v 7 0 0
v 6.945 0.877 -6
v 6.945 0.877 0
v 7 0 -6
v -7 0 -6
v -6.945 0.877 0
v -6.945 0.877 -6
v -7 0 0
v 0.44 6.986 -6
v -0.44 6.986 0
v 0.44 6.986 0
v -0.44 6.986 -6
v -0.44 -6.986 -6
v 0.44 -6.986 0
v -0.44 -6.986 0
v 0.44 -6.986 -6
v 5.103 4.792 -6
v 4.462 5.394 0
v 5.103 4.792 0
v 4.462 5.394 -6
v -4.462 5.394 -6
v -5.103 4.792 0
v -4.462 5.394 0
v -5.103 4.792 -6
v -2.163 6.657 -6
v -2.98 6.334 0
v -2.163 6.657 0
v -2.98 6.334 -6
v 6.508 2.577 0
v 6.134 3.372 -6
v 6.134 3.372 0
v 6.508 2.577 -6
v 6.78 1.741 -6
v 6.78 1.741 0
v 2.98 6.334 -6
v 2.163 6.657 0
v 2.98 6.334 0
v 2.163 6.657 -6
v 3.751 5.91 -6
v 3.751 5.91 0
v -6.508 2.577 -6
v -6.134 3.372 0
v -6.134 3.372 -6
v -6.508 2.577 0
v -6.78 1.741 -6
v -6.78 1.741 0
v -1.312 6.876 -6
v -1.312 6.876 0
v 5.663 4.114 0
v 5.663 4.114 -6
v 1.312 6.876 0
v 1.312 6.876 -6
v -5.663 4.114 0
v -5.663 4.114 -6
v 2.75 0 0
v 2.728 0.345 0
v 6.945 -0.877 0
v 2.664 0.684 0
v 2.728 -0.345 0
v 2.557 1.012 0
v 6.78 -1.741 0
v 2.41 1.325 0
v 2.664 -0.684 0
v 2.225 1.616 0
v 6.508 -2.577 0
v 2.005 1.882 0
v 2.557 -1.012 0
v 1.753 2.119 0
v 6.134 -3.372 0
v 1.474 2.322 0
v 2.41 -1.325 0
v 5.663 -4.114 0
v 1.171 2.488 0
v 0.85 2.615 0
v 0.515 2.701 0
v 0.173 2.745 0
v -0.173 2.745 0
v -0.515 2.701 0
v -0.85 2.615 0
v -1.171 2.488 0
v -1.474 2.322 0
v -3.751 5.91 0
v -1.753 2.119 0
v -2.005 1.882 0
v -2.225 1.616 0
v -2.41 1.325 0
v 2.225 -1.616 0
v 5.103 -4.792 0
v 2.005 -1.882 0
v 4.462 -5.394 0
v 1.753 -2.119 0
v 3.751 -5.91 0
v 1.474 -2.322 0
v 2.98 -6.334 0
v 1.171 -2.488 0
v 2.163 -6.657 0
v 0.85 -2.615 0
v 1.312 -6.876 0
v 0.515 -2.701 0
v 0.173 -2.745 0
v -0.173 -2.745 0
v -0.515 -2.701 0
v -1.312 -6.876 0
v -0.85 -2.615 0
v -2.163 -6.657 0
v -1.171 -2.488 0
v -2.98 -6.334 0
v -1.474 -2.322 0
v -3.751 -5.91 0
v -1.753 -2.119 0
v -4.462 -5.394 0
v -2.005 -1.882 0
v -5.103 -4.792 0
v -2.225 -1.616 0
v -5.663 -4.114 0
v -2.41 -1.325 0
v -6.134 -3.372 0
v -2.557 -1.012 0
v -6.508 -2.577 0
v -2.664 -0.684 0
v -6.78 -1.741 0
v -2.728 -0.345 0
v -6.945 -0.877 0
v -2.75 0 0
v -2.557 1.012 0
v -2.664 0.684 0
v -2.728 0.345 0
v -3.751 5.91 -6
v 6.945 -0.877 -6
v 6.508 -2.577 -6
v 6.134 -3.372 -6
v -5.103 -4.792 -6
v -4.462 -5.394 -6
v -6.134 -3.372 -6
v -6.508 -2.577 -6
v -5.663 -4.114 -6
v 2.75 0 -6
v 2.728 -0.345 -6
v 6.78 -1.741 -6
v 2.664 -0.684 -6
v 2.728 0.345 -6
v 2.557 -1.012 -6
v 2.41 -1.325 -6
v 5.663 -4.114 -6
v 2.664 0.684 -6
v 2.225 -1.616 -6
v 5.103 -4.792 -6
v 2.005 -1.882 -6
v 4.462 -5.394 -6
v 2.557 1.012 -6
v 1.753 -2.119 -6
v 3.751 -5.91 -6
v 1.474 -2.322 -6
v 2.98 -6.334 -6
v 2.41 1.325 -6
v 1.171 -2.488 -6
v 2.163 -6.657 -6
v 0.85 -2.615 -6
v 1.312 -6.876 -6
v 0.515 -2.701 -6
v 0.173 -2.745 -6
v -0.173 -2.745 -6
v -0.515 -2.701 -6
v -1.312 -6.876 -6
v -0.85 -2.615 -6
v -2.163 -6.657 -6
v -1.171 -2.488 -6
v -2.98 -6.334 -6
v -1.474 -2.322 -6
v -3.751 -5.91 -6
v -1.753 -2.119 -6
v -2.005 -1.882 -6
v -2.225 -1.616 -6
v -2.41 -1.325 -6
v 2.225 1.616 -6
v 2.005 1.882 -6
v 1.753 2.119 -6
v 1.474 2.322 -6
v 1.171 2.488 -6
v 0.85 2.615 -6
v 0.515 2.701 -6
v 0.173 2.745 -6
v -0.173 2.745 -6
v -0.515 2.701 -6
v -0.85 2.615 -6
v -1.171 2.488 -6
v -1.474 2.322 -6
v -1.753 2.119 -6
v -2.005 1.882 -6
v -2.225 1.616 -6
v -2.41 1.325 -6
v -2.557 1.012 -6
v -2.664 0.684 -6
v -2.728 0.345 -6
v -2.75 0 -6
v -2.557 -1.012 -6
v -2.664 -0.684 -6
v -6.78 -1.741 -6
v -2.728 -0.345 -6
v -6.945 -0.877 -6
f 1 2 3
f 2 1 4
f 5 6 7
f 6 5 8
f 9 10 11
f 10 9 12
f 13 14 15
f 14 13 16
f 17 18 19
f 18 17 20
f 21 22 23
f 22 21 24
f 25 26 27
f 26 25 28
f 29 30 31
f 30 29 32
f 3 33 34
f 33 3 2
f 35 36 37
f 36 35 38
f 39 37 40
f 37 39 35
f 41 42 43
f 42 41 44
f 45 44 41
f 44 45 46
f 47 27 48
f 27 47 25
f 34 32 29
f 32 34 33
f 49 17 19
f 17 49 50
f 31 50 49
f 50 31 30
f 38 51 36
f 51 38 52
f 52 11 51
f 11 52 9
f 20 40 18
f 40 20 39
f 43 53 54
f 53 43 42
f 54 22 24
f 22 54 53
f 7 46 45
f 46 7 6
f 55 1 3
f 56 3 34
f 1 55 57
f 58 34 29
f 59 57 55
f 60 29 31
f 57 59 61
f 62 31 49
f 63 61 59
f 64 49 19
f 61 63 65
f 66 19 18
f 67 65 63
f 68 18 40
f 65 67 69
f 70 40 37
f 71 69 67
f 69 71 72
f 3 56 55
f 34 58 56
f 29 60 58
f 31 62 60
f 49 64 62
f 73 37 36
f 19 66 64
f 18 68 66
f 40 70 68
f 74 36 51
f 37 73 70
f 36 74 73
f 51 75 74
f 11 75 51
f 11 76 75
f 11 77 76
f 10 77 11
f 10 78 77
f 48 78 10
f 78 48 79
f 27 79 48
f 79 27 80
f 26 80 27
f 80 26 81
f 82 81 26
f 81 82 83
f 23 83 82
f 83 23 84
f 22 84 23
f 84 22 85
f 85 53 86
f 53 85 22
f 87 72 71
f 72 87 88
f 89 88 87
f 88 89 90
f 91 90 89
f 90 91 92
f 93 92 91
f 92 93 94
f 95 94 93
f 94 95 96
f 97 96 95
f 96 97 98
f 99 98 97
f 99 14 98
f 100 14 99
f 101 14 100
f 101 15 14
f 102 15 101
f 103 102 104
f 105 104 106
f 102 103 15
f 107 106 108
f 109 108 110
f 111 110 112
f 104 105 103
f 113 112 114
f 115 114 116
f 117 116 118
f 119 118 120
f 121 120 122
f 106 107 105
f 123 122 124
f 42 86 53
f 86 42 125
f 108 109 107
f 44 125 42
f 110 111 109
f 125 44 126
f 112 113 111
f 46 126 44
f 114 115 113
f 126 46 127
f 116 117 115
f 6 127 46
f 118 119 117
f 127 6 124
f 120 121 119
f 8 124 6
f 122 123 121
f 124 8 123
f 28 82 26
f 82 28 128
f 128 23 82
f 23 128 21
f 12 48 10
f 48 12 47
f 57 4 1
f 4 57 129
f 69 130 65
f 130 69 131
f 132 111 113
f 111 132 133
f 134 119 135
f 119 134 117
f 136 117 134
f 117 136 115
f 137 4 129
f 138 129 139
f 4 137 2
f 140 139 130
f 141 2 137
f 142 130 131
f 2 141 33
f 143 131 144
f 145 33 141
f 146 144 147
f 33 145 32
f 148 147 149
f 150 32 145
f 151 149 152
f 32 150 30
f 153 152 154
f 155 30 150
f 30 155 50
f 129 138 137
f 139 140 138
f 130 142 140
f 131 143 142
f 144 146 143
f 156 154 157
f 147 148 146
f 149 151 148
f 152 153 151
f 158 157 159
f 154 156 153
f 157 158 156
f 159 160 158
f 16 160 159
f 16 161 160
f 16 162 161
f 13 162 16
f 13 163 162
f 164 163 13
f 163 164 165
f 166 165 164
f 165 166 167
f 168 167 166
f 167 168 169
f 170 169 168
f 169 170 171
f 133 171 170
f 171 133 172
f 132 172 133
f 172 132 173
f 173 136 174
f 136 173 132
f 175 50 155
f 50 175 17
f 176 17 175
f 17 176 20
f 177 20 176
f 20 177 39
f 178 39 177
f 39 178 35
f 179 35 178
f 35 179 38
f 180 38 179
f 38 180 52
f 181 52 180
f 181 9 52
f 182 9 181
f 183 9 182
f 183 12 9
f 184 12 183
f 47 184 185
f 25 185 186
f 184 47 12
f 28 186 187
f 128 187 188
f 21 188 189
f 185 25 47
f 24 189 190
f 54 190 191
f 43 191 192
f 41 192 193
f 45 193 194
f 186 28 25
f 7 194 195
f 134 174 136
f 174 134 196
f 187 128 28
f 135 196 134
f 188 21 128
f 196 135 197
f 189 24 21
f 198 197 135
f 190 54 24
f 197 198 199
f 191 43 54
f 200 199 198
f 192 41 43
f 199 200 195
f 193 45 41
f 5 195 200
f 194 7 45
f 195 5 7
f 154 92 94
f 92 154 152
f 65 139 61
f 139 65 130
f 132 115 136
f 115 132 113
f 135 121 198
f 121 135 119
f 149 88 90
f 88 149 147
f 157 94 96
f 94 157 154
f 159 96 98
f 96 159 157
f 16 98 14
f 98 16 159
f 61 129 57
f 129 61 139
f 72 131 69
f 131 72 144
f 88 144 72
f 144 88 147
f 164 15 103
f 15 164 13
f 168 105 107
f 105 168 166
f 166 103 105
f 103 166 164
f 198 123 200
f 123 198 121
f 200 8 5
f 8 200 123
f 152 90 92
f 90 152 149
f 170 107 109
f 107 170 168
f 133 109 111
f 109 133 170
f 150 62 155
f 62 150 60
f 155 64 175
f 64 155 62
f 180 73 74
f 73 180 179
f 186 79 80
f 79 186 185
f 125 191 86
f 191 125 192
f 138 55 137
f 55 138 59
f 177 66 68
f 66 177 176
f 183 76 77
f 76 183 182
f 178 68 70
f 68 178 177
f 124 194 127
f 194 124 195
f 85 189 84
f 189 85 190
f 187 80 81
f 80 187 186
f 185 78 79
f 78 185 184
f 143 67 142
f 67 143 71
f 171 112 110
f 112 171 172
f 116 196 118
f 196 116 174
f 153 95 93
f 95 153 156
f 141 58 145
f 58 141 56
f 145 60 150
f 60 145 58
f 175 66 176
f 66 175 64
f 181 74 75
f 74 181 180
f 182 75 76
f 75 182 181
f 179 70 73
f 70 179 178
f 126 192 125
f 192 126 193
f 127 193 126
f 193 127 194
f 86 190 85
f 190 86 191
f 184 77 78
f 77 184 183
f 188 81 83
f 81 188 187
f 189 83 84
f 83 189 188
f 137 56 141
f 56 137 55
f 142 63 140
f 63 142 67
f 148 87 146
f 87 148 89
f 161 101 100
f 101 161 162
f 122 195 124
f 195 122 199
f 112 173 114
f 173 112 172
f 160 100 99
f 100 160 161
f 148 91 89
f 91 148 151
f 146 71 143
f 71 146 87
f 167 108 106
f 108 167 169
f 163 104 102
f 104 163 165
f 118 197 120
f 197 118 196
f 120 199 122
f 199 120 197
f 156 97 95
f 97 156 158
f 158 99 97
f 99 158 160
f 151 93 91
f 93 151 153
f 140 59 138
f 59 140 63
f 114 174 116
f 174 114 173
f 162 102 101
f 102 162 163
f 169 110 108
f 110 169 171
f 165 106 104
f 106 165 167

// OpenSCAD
$fn = 50;


difference() {
	union() {
		translate(v = [0, 0, -6.0000000000]) {
			cylinder(h = 6, r = 7.0000000000);
		}
		cylinder(h = 0, r = 10.0000000000);
	}
	union() {
		#translate(v = [0, 0, -6]) {
			cylinder(h = 6, r = 2.7500000000);
		}
	}
}
